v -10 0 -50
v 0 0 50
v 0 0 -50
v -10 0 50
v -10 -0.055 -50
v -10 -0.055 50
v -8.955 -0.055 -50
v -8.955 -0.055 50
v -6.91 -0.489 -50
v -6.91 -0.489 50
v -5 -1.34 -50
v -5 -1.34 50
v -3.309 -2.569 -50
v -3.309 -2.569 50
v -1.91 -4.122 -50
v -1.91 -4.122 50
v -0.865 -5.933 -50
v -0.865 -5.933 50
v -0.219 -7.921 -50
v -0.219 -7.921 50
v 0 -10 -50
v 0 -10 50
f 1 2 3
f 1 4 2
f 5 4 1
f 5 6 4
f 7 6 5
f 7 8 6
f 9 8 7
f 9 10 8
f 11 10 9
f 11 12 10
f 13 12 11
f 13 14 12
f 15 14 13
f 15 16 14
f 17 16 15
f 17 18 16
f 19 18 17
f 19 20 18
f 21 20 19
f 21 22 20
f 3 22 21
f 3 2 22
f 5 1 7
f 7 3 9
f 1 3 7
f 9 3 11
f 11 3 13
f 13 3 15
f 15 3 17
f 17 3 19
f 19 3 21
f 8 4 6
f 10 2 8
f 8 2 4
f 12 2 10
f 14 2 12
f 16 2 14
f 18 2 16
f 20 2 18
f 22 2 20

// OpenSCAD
function _v0() = true;
function _v1() = [10,10];
module _v2() { square(center=_v0(), size=_v1()); }
function _v3() = 10;
module _v4() { circle(r=_v3()); }
module _v5 (y=undef) { translate([0, -y, 0]) children(); }
function _v6() = 5;
module _v7() { _v5(y=_v6()) children(); }
module _v8() { _v7() _v4(); }
module _v9 (x=undef) { translate([-x, 0, 0]) children(); }
module _v10() { _v9(x=_v6()) children(); }
module _v11() { _v10() _v8(); }
module _v12() { difference() { _v2(); _v11(); }; }
function _v13() = [10,0.01];
module _v14() { square(center=_v0(), size=_v13()); }
module _v15 (y=undef) { translate([0, y, 0]) children(); }
module _v16() { _v15(y=_v6()) children(); }
module _v17() { _v16() _v14(); }
function _v18() = [0.01,10];
module _v19() { square(center=_v0(), size=_v18()); }
module _v20 (x=undef) { translate([x, 0, 0]) children(); }
module _v21() { _v20(x=_v6()) children(); }
module _v22() { _v21() _v19(); }
module _v23() { union() { _v17(); _v22(); }; }
module _v24 () { if($preview) { children(); } }
module _v25() { _v24() _v23(); }
module _v26() { union() { _v12(); _v25(); }; }
module _v27() { _v7() _v26(); }
module _v28() { _v10() _v27(); }
function _v29() = 100;
module _v30() { linear_extrude(center=_v0(), height=_v29()) children(); }
module _v31() { _v30() _v28(); }

_v31();
